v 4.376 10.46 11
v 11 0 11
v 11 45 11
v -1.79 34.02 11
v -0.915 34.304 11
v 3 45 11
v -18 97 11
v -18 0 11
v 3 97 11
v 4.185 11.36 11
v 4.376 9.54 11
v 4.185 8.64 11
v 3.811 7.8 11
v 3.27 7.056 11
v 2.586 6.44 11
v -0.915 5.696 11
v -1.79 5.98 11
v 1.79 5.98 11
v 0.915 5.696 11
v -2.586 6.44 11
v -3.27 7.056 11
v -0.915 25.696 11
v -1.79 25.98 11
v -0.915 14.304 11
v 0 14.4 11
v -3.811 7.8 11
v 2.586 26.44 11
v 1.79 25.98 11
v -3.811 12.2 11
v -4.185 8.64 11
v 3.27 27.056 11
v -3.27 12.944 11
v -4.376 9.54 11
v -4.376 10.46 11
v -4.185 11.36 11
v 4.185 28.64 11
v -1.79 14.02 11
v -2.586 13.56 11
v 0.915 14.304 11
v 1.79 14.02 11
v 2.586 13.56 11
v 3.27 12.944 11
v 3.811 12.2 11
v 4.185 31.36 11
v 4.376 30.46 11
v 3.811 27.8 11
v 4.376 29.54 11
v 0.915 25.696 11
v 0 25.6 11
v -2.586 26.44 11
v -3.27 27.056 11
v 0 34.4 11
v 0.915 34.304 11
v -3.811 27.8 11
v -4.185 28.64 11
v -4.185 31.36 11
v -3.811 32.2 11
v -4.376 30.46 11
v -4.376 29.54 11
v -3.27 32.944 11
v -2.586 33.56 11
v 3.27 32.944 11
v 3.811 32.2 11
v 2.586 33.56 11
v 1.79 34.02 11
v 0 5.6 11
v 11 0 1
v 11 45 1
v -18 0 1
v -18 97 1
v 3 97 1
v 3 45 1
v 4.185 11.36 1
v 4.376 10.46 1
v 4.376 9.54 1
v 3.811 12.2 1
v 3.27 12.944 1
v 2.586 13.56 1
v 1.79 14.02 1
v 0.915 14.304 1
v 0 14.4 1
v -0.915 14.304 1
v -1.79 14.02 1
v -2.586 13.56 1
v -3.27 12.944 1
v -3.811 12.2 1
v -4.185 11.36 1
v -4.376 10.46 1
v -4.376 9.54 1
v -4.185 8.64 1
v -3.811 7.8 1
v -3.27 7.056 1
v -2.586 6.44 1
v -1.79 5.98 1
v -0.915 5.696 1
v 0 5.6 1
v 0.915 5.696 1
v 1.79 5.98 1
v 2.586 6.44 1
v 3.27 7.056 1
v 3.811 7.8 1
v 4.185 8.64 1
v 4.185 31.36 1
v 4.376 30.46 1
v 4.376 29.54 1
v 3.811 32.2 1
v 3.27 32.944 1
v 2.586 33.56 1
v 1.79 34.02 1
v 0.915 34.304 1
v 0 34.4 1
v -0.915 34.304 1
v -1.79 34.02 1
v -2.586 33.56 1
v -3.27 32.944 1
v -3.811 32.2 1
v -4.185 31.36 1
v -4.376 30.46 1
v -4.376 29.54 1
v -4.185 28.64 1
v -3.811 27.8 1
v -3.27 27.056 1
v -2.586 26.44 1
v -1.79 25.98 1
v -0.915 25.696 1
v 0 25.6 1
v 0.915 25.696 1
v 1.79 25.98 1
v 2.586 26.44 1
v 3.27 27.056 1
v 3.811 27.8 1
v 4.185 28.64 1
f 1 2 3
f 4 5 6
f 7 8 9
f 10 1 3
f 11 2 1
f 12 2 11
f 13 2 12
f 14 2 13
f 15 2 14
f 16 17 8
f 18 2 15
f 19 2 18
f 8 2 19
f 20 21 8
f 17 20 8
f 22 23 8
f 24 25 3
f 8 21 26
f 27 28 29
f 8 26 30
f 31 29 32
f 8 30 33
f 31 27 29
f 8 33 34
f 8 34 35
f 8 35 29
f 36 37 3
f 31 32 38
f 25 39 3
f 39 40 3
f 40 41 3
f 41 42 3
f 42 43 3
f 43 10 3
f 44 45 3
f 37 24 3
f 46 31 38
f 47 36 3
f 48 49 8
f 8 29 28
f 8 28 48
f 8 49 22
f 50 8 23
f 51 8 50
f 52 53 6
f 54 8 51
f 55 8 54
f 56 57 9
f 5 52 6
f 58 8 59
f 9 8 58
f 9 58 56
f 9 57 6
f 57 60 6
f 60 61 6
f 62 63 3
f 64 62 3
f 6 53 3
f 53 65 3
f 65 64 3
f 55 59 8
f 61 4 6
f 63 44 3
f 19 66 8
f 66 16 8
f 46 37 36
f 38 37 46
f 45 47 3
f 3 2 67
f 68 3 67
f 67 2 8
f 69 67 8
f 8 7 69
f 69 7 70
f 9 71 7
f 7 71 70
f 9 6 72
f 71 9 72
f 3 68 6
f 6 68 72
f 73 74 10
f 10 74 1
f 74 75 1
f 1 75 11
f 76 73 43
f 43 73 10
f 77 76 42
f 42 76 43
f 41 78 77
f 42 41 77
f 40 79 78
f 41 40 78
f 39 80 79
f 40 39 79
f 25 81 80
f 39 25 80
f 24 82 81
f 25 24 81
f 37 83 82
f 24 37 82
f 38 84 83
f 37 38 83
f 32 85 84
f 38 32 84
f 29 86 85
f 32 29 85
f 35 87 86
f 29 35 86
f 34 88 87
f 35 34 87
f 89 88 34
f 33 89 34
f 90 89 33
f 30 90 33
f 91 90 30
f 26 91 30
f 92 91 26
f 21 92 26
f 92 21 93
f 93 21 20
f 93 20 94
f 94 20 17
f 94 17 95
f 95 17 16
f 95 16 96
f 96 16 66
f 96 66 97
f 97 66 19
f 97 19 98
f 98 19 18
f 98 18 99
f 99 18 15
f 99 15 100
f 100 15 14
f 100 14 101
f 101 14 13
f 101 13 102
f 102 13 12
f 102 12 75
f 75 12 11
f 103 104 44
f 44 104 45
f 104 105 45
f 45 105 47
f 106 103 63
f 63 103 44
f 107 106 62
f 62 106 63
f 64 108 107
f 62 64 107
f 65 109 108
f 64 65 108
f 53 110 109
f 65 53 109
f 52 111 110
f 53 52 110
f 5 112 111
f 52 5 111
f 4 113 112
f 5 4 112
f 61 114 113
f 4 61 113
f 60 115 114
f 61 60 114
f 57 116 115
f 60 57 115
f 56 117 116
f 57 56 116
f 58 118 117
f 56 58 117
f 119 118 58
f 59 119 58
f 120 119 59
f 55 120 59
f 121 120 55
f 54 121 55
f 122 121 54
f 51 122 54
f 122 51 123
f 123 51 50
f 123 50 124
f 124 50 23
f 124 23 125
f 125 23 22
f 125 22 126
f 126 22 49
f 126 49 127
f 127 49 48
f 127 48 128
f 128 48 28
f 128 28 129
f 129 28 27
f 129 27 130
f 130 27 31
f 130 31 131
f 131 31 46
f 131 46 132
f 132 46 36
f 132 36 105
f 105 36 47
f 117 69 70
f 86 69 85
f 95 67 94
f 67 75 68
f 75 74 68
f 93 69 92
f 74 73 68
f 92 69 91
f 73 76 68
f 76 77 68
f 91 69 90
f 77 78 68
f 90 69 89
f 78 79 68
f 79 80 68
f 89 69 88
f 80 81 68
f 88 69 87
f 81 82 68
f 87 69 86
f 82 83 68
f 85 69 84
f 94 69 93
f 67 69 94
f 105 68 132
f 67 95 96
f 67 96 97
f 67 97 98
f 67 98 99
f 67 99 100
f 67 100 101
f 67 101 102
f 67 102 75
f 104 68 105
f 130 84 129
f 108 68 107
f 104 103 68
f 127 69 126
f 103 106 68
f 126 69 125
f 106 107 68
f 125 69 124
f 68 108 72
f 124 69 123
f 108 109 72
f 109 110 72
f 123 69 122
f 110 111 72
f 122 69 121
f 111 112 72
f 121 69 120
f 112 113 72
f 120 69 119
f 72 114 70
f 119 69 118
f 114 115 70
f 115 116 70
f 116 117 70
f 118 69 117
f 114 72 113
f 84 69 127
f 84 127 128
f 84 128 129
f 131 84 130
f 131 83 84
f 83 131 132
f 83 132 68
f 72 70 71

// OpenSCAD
module corner_base(){	

 translate([0,-11,0])cube([10,29,45]);
 // Support
 translate([0,-3,45])cube([10,21,52]);

}

module corner_holes(){
 translate([-11,-11,0]){

  // Bottom hole
  translate([0,11,10]) rotate([0,90,0]) translate([0,0,-5]) cylinder(h = 270, r=4.4, $fn=30);
  // Top hole
  translate([0,11,30]) rotate([0,90,0]) translate([0,0,-5]) cylinder(h = 270, r=4.4, $fn=30);

 }
}

// Final part
module corner(){

 // Rotate the part for better printing
 translate([0,0,11]) rotate([-90,90,0]) difference(){

  corner_base();
  corner_holes();

 }
}

corner();
